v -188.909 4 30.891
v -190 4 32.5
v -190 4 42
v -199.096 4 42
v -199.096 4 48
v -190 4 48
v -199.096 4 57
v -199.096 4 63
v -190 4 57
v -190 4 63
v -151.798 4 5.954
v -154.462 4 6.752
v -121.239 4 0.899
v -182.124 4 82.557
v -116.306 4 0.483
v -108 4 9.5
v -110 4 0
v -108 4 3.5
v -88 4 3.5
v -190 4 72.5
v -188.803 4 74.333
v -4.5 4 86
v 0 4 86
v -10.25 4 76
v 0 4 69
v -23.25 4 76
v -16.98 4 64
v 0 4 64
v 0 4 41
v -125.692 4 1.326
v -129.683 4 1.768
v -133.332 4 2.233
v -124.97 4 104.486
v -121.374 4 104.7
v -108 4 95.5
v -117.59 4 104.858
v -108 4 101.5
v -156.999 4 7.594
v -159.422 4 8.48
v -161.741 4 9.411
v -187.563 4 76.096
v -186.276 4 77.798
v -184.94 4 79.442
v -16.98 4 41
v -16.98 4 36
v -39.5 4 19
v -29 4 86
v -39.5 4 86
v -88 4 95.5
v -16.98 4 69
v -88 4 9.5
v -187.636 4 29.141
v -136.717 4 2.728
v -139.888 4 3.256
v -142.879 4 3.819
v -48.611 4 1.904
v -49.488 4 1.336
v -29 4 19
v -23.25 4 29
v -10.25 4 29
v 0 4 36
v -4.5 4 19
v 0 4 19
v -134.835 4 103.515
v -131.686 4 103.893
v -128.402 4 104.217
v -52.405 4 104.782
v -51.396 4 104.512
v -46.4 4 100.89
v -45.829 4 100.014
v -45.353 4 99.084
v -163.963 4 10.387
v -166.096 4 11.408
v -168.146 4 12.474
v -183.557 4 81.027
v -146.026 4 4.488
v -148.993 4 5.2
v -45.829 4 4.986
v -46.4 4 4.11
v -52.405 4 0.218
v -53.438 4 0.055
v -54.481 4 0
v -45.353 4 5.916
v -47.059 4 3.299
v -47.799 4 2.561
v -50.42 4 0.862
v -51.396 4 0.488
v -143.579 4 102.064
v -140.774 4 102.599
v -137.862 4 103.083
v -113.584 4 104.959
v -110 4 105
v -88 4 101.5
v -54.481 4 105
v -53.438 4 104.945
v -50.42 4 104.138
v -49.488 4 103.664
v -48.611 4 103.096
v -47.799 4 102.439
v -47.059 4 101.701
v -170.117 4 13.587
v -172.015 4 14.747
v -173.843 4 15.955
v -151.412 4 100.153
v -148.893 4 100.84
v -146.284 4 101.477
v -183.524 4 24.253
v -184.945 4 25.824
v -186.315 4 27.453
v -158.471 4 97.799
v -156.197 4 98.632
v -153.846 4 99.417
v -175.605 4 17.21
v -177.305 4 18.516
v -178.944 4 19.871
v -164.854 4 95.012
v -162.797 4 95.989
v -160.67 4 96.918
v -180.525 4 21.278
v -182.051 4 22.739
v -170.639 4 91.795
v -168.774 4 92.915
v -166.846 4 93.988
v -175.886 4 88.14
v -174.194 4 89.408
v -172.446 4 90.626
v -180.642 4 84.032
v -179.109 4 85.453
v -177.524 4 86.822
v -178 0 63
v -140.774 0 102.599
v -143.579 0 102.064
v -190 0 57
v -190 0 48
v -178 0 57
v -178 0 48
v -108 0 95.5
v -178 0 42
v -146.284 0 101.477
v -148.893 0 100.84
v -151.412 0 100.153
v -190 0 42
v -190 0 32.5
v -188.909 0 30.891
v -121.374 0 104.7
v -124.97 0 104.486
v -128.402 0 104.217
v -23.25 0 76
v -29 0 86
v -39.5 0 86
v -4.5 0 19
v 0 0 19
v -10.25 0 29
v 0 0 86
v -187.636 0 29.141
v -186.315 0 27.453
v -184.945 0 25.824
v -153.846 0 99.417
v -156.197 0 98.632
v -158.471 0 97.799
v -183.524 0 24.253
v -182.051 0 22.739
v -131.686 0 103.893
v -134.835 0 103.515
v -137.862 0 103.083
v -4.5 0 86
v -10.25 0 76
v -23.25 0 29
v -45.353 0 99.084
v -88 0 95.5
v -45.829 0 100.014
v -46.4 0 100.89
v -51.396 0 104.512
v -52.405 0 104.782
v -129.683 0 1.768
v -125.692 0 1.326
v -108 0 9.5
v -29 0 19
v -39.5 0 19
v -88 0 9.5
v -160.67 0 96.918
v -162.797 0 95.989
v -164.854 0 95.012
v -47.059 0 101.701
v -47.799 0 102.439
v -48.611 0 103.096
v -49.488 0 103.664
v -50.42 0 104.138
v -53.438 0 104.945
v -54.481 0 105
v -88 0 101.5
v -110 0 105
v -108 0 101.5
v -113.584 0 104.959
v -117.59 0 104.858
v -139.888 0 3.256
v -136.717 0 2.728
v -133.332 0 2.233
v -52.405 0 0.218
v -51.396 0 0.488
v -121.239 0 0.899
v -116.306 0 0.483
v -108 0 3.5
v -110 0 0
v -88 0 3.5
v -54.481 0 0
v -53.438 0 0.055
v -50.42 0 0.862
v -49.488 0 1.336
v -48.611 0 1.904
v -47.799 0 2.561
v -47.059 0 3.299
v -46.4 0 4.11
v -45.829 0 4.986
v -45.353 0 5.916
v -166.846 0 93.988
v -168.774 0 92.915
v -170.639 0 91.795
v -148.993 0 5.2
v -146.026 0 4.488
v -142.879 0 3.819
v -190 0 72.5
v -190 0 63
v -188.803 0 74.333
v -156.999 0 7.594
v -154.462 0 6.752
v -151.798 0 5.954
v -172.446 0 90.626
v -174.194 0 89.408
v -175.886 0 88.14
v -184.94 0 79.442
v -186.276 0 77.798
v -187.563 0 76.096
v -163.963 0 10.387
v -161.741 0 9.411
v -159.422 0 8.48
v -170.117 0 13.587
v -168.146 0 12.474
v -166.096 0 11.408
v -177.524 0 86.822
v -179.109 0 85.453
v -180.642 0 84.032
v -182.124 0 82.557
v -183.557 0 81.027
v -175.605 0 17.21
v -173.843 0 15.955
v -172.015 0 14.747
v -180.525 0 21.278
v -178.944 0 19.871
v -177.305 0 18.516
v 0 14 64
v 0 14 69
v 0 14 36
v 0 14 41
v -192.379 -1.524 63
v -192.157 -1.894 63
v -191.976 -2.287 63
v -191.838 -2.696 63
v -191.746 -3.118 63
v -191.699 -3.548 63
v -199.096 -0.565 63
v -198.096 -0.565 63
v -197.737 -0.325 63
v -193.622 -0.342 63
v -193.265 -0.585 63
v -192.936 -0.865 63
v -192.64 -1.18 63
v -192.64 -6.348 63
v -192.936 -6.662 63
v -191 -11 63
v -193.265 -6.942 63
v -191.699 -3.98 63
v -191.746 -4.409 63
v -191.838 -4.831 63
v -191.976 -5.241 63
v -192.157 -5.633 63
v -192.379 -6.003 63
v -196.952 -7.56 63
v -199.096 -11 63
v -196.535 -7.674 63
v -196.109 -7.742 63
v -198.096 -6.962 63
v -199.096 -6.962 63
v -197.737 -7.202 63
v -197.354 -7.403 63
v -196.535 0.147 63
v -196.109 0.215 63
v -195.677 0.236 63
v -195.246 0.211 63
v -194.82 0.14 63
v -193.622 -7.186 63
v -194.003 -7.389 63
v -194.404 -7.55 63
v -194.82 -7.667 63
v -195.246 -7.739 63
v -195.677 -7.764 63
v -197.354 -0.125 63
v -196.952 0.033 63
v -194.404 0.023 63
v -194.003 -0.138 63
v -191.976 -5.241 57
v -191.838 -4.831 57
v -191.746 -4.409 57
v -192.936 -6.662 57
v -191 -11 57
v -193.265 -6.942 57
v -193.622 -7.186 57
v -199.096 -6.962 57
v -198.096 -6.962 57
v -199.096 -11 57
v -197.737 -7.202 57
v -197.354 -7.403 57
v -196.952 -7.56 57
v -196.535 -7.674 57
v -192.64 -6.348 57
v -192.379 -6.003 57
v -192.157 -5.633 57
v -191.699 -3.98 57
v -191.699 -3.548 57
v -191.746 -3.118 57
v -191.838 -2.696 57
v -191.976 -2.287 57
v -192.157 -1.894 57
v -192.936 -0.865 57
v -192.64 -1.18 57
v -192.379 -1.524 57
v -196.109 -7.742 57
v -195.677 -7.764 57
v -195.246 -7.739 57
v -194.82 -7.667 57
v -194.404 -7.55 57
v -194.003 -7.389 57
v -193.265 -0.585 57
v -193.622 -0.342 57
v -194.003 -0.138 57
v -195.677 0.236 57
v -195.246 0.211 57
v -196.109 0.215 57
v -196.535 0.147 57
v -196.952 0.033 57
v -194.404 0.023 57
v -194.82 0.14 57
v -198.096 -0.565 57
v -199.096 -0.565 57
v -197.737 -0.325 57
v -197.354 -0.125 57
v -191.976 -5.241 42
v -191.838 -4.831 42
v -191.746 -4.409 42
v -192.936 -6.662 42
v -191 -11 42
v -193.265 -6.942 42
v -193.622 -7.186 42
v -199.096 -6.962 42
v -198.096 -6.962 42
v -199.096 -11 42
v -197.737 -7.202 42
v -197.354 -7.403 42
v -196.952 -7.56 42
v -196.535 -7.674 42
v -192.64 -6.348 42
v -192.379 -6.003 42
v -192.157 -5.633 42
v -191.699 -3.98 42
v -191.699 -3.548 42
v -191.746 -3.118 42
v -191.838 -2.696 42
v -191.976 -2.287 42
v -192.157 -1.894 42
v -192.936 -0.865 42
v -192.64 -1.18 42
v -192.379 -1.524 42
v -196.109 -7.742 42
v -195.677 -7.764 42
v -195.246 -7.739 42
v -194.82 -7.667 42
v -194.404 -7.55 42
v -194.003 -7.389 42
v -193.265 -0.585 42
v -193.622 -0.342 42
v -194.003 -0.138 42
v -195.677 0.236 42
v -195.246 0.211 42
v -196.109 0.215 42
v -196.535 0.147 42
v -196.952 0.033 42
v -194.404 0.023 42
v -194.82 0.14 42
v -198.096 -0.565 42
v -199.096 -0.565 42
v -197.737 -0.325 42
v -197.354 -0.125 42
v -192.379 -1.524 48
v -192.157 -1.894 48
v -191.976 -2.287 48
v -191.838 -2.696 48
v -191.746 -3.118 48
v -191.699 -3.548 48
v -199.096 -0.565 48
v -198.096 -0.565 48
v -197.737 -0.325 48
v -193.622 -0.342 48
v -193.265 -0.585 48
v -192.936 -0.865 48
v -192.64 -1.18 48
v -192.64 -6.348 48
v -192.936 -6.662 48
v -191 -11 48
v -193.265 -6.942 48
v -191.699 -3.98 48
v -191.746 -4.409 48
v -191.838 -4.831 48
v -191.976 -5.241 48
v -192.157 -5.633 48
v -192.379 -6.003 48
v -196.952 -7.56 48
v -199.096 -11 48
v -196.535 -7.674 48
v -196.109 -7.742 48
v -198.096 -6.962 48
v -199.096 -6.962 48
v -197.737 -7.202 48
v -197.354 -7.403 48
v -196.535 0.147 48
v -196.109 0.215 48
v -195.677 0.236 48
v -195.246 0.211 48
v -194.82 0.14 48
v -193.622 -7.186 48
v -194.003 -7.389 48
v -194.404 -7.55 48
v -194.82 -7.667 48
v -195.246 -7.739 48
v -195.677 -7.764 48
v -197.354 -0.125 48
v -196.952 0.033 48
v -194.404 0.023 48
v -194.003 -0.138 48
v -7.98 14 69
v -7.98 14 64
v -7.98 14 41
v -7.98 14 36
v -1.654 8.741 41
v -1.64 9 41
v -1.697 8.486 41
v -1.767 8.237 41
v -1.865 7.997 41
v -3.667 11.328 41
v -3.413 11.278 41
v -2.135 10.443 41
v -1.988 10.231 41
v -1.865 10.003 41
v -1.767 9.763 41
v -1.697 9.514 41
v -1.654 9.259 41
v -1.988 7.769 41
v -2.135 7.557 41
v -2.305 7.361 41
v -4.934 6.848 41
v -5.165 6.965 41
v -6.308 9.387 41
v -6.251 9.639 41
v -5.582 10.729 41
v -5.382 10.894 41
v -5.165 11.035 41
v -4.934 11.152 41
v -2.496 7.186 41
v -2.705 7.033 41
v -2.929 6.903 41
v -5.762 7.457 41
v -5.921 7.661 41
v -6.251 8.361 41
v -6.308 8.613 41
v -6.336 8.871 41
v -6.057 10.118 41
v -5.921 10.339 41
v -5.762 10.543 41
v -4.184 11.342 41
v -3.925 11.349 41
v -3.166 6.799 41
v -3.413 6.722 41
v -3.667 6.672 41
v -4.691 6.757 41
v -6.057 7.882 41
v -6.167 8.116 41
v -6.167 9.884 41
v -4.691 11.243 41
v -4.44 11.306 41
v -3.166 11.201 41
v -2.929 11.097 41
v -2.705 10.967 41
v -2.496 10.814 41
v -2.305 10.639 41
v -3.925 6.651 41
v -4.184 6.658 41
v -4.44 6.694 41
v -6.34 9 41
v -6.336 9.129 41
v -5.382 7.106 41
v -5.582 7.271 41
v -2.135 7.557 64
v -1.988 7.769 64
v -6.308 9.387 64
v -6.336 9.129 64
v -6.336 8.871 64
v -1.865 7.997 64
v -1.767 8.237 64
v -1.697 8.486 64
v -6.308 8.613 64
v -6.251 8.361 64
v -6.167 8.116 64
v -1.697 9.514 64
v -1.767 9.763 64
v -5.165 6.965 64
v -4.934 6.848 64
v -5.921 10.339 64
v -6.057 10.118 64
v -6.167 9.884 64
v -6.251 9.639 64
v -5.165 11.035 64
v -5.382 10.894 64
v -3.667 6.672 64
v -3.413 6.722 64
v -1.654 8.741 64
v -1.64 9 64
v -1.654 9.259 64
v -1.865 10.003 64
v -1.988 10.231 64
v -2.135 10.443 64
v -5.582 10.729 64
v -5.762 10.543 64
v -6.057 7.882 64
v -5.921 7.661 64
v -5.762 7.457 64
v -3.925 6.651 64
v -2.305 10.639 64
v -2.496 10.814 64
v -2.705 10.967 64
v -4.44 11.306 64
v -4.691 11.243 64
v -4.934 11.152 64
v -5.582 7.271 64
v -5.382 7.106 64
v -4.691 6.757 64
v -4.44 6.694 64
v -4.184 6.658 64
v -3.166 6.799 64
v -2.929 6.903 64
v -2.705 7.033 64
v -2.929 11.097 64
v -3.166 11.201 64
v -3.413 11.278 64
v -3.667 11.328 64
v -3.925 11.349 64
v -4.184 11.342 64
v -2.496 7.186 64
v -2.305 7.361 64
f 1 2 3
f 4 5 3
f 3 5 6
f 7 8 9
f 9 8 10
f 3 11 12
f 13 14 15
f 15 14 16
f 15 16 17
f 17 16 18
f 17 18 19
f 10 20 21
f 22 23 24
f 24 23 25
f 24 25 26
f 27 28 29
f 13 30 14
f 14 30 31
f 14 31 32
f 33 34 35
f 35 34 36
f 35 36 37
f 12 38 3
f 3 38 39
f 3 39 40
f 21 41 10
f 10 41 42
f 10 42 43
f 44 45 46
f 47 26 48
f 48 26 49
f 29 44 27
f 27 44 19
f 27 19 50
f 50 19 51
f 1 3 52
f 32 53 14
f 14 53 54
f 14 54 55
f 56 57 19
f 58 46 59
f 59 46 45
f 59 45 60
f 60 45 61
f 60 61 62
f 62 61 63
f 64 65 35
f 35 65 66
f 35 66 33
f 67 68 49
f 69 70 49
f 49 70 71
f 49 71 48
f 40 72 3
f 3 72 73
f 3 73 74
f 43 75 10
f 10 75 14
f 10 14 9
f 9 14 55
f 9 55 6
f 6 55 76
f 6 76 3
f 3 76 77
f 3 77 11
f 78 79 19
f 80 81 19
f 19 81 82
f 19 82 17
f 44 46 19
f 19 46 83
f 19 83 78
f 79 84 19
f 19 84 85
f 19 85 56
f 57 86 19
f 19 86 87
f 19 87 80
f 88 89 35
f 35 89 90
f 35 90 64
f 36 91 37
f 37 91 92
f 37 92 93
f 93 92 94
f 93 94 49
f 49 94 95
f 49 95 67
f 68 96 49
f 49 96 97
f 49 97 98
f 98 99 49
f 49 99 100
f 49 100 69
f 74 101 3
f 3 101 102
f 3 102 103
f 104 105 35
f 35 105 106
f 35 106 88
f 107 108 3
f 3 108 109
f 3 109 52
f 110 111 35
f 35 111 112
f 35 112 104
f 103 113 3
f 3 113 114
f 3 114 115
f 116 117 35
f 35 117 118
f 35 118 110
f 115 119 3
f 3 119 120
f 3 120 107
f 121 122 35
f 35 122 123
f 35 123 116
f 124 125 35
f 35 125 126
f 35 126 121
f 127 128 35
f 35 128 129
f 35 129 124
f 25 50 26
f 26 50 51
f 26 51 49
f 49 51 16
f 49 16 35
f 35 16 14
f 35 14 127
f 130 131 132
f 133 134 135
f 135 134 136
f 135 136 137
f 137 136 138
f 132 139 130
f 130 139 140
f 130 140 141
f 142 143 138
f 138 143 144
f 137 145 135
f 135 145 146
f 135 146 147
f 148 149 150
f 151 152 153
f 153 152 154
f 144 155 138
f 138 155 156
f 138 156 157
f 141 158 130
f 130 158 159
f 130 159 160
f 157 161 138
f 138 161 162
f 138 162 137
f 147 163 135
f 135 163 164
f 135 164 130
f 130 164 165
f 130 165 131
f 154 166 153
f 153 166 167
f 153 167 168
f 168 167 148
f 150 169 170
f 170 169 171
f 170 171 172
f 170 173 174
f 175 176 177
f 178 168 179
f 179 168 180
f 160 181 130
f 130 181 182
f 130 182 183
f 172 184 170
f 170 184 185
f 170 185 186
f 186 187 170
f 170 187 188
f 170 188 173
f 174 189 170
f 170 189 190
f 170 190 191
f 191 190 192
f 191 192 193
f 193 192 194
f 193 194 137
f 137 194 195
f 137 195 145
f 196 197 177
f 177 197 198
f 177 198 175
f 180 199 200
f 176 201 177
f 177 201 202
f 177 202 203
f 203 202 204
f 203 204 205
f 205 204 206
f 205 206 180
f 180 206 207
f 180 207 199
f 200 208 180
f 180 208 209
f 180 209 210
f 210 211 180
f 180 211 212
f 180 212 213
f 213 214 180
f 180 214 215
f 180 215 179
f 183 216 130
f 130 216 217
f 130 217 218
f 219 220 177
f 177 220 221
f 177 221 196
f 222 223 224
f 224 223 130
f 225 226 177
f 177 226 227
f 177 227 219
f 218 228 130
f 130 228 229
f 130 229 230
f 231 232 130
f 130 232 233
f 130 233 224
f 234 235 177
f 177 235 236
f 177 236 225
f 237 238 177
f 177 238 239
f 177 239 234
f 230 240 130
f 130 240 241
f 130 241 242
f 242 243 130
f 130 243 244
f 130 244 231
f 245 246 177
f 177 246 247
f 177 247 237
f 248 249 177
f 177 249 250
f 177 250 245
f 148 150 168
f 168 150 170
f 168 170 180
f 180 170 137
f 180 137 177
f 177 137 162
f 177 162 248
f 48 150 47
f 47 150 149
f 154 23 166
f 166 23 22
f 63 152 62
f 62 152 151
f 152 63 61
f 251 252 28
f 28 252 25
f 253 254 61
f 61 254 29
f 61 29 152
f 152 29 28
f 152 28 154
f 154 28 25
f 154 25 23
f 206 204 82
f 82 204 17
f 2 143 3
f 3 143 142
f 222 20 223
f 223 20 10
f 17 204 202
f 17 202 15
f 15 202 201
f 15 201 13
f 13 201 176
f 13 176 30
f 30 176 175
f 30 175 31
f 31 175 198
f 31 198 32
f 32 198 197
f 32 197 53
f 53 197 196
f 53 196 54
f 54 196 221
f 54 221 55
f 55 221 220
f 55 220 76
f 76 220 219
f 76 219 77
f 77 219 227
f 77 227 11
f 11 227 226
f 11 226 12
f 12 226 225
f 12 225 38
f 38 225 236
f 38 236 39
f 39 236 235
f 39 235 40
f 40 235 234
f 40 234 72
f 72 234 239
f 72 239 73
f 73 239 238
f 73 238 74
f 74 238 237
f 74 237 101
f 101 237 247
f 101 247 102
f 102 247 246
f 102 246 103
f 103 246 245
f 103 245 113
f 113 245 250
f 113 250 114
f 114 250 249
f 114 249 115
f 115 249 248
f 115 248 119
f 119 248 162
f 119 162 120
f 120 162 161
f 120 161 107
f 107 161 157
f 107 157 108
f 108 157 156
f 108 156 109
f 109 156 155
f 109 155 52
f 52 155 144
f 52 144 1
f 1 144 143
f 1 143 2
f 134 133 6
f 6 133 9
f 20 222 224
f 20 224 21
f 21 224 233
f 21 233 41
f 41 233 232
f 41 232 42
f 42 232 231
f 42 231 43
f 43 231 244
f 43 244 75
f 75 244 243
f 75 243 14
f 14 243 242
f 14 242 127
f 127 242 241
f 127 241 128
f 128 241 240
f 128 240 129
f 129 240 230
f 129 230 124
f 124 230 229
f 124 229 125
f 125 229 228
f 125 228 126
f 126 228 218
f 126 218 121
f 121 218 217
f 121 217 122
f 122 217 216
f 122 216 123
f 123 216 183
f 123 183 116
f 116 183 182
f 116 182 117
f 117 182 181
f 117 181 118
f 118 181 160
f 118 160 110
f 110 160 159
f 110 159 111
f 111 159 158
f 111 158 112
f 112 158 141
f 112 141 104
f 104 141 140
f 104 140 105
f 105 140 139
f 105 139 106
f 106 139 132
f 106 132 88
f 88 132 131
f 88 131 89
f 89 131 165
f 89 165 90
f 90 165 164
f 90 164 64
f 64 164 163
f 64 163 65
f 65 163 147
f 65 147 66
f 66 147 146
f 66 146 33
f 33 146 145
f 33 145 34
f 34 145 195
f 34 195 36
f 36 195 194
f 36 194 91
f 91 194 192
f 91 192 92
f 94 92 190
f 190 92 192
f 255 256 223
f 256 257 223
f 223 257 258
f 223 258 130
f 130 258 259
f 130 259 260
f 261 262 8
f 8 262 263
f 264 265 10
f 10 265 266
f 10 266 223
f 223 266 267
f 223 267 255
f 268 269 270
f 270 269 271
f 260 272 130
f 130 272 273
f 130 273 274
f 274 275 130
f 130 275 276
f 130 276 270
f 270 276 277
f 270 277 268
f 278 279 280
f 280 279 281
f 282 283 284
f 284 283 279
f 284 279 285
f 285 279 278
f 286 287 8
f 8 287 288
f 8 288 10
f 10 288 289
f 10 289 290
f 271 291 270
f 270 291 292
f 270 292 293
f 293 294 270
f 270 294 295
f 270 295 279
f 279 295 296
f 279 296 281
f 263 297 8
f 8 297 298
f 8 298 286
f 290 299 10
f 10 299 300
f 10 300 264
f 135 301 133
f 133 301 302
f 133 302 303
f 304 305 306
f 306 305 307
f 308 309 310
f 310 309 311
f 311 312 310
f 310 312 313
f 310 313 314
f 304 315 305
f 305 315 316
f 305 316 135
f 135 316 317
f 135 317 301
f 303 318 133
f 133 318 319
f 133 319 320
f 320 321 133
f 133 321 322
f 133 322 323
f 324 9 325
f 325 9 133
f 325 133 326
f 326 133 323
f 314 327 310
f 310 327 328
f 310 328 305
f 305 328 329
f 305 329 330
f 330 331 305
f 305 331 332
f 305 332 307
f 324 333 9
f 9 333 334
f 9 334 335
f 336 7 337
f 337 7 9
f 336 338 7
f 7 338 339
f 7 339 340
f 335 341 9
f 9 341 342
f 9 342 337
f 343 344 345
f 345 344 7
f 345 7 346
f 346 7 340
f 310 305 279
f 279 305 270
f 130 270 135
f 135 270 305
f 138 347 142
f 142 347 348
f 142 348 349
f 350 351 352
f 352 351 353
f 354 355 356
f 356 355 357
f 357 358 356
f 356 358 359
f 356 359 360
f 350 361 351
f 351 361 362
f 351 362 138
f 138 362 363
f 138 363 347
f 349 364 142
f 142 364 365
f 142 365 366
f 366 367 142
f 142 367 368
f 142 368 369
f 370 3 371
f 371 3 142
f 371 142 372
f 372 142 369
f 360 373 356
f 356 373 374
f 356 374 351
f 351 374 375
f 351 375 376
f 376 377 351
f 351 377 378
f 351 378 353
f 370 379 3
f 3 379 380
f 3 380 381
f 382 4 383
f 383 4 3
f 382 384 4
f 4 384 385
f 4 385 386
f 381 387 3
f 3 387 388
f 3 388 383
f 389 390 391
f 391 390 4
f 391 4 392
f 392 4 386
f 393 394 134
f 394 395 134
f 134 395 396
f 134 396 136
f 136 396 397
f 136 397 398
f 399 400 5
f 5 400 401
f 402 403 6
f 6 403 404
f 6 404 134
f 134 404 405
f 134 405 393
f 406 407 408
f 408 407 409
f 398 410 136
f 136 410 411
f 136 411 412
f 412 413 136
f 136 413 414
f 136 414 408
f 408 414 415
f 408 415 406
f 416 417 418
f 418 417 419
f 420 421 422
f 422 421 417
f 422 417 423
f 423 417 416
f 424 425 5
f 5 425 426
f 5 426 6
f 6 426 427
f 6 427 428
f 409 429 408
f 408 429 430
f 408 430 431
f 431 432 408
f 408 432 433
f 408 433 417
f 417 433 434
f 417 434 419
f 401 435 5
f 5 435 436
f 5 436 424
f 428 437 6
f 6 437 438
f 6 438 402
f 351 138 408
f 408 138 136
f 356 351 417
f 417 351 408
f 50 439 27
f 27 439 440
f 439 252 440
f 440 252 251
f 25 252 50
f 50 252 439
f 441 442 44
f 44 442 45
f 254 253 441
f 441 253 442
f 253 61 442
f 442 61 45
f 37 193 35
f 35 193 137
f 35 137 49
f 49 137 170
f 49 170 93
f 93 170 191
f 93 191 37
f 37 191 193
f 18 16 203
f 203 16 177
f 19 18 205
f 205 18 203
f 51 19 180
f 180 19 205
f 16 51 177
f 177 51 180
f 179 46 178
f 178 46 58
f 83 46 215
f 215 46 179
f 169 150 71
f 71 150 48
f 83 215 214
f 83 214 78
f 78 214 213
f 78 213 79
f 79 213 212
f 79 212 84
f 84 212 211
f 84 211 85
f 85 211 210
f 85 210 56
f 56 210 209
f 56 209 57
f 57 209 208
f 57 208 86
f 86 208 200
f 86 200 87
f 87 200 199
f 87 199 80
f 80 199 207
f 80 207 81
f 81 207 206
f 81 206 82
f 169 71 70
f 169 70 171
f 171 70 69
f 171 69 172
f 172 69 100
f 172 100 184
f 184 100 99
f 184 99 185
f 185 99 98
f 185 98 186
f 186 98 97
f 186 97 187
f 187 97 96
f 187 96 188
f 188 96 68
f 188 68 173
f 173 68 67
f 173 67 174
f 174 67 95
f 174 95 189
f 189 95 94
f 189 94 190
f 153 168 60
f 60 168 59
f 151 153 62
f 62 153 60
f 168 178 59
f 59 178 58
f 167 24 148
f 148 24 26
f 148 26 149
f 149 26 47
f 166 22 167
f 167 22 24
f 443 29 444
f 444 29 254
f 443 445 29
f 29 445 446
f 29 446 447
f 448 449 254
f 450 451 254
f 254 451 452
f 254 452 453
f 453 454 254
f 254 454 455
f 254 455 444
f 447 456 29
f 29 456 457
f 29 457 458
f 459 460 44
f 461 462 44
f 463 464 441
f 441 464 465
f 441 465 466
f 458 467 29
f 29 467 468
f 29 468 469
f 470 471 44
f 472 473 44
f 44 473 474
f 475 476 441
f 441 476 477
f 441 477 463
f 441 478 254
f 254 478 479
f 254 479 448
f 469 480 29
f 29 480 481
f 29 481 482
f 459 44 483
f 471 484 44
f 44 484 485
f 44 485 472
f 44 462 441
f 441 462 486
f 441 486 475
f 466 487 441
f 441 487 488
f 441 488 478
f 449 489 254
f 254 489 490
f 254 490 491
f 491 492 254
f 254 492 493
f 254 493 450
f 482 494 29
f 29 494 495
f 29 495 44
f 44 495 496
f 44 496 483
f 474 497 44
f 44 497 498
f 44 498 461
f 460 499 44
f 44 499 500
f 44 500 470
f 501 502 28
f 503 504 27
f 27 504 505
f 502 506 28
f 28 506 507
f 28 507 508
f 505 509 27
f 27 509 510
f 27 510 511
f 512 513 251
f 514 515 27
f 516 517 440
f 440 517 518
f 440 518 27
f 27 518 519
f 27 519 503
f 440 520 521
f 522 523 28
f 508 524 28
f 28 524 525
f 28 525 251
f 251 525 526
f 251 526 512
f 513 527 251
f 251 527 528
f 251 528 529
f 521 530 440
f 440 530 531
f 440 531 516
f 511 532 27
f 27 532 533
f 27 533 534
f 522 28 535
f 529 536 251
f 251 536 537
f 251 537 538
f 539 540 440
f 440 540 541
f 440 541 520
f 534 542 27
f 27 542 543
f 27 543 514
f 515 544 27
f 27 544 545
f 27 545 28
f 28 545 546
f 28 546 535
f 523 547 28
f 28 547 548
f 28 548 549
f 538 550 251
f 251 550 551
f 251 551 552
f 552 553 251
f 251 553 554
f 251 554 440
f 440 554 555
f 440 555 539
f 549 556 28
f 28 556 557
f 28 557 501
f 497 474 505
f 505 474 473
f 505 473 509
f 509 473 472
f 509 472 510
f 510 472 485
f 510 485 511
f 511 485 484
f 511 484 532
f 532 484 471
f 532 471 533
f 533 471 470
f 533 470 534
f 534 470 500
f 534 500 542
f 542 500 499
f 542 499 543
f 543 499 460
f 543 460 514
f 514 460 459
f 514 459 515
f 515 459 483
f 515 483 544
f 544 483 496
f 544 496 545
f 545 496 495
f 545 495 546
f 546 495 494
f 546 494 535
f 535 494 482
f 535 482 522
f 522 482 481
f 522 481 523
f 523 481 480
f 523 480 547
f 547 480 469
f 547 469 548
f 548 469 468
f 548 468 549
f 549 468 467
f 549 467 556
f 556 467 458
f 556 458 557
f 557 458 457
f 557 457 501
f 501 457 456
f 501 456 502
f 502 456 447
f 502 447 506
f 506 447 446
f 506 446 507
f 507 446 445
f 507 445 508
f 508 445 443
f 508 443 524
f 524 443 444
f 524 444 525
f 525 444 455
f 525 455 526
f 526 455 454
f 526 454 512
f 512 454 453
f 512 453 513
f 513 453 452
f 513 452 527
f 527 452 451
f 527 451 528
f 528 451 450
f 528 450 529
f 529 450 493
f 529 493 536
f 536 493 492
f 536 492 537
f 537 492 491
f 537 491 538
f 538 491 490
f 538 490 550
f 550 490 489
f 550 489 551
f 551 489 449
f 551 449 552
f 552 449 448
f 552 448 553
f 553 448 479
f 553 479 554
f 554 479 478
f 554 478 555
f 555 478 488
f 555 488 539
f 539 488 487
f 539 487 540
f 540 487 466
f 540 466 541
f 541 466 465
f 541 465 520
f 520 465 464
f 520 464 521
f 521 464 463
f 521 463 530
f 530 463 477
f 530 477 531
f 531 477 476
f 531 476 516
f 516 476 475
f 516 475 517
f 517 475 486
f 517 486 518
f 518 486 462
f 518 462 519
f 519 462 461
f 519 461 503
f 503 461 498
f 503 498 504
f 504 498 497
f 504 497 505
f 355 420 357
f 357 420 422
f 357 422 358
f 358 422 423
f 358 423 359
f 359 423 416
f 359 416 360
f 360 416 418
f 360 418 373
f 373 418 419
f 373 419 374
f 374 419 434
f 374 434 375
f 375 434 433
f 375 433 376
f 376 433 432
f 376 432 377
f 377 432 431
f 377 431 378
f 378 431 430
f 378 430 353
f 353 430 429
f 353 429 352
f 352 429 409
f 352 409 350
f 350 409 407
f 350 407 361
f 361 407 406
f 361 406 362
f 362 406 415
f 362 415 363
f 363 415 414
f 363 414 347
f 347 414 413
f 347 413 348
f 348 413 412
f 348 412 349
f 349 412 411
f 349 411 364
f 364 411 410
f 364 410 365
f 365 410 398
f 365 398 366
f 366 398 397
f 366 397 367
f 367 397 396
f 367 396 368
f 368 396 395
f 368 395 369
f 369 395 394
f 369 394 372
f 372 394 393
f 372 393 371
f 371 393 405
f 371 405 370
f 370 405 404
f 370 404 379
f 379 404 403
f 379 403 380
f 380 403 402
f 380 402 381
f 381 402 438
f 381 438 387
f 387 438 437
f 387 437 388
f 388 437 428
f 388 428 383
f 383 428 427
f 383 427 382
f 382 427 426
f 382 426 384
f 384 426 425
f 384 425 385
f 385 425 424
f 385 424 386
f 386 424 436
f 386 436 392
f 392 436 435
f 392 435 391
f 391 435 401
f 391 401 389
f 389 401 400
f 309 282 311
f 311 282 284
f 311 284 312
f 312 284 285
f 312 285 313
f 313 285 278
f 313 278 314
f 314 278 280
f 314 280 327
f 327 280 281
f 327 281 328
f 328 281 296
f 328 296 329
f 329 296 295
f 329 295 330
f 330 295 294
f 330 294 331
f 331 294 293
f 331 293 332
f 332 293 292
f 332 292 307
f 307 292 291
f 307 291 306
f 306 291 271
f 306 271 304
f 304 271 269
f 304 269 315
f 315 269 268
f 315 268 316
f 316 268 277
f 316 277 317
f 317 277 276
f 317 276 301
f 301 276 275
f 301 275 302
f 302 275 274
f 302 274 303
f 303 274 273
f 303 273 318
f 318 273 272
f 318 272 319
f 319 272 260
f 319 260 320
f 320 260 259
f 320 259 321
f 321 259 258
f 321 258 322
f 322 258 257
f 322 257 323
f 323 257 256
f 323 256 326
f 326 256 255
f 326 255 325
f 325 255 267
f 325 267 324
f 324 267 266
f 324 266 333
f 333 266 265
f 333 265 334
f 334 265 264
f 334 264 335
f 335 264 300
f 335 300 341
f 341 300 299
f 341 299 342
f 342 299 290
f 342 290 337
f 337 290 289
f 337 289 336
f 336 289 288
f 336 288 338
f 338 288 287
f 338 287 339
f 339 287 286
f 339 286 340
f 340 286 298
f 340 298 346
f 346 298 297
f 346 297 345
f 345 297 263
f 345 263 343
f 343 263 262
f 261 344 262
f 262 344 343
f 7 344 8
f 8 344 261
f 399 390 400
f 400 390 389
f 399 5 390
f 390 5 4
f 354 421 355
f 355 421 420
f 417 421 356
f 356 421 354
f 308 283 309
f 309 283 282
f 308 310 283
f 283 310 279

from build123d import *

# Parameters (mm, degrees)
BOSS_EXTRUDE1_DEPTH     = 4
BOSS_EXTRUDE2_START     = -45
BOSS_EXTRUDE2_DEPTH     = 3
BOSS_EXTRUDE3_START     = -39
BOSS_EXTRUDE3_DEPTH     = 3
BOSS_EXTRUDE4_REACH     = 213.107
SKETCH6_R               = 2.5
SKETCH7_W               = 20
SKETCH7_H               = 6
CUT_EXTRUDE1_DEPTH      = 10
CUT_EXTRUDE2_DEPTH      = 228.268563733
FILLET1_R               = 10
CUT_EXTRUDE3_DEPTH      = 228.268563733
SKETCH12_W              = 23
SKETCH12_H              = 10
CUT_EXTRUDE6_DEPTH      = 21
BOSS_EXTRUDE5_REACH     = 213.407
SKETCH13_R              = 2.35
CUT_EXTRUDE7_DEPTH      = 209.214432859
CUT_EXTRUDE7_DEPTH_BACK = 209.214432859
SKETCH15_W              = 6
SKETCH15_H              = 4.56544039
SKETCH15_H_2            = 4.038157292
BOSS_EXTRUDE6_DEPTH     = 1


with BuildPart() as part:
    # Sketch1 → Boss-Extrude1 (new body)
    with BuildSketch(Plane(origin=(0, 0, 0), x_dir=(1, 0, 0), z_dir=(0, 1, 0))):
        with BuildLine():
            Line((-110, 0), (0, 0))
            Line((0, 0), (0, -105))
            Line((0, -105), (-110, -105))
            add(Edge.make_bspline(
                [(-190, -72.5), (-172.262756658, -100.700379519), (-139.265999107, -104.836107107), (-110, -105)],
                knots=[0, 0, 0, 0, 1, 1, 1, 1], degree=3))
            Line((-190, -72.5), (-190, -32.5))
            add(Edge.make_bspline(
                [(-190, -32.5), (-171.707374586, -4.618888995), (-138.989901699, -2.178666842), (-110, 0)],
                knots=[0, 0, 0, 0, 1, 1, 1, 1], degree=3))
        make_face()
    extrude(amount=BOSS_EXTRUDE1_DEPTH)

    # Sketch2 → Boss-Extrude2 (add, symmetric)
    with BuildSketch(Plane.XY.offset(105).offset(BOSS_EXTRUDE2_START)):
        Polygon((-190, 4), (-201, 4), (-201, -11), (-191, -11), (-178, 0), align=None)
    boss_extrude2 = extrude(amount=BOSS_EXTRUDE2_DEPTH, both=True)

    # Mirror1: Boss-Extrude2 across plane
    add(boss_extrude2.mirror(Plane.XY.offset(52.5)))

    # Sketch5 → Boss-Extrude3 (add, symmetric)
    with BuildSketch(Plane.XY.offset(105).offset(BOSS_EXTRUDE3_START)):
        Polygon((-16.979807258, 4), (-7.979807258, 14), (0, 14), (0, 4), align=None)
    boss_extrude3 = extrude(amount=BOSS_EXTRUDE3_DEPTH, both=True)

    # Mirror4: Boss-Extrude3 across plane
    add(boss_extrude3.mirror(Plane.XY.offset(52.5)))

    # Sketch6 → Boss-Extrude4 (add, up to next)
    with BuildSketch(Plane.XY.offset(42), mode=Mode.PRIVATE) as boss_extrude4_sk1:
        with Locations(Location((-4, 10, 0), (0, 0, 180))):
            Circle(SKETCH6_R)
    boss_extrude4_tool1 = extrude(boss_extrude4_sk1.sketch, amount=BOSS_EXTRUDE4_REACH, mode=Mode.PRIVATE) - part.part
    add(boss_extrude4_tool1.solids().sort_by_distance((-4, 10, 42))[0])

    # Sketch7 → Cut-Extrude1 (cut)
    with BuildSketch(Plane(origin=(0, 4, 0), x_dir=(1, 0, 0), z_dir=(0, 1, 0))):
        with Locations((-98, -98.5)):
            Rectangle(SKETCH7_W, SKETCH7_H)
    cut_extrude1 = extrude(amount=-CUT_EXTRUDE1_DEPTH, mode=Mode.SUBTRACT)

    # Mirror5: Cut-Extrude1 across plane
    add(cut_extrude1.mirror(Plane.XY.offset(52.5)), mode=Mode.SUBTRACT)

    # Sketch10 → Cut-Extrude2 (cut, symmetric)
    with BuildSketch(Plane(origin=(0, 4, 0), x_dir=(1, 0, 0), z_dir=(0, 1, 0))):
        Polygon((0, -19), (-39.5, -19), (-48, 0), (0, 0), align=None)
    cut_extrude2 = extrude(amount=CUT_EXTRUDE2_DEPTH, both=True, mode=Mode.SUBTRACT)

    # Mirror6: Cut-Extrude2 across plane
    add(cut_extrude2.mirror(Plane.XY.offset(52.5)), mode=Mode.SUBTRACT)

    # Fillet1
    fillet1_edges = [part.edges().sort_by_distance(p)[0] for p in [
        (-48, 2, 0),
        (-48, 2, 105),
    ]]
    fillet(fillet1_edges, radius=FILLET1_R)

    # Sketch11 → Cut-Extrude3 (cut, symmetric)
    with BuildSketch(Plane(origin=(0, 4, 0), x_dir=(1, 0, 0), z_dir=(0, 1, 0))):
        Polygon((-4.5, -19), (-10.25, -29), (-23.25, -29), (-29, -19), align=None)
    cut_extrude3 = extrude(amount=CUT_EXTRUDE3_DEPTH, both=True, mode=Mode.SUBTRACT)

    # Mirror7: Cut-Extrude3 across plane
    add(cut_extrude3.mirror(Plane.XY.offset(52.5)), mode=Mode.SUBTRACT)

    # Sketch12 → Cut-Extrude6 (cut)
    with BuildSketch(Plane(origin=(0, 0, 0), x_dir=(0, 0, -1), z_dir=(1, 0, 0))):
        with Locations((-52.5, 9)):
            Rectangle(SKETCH12_W, SKETCH12_H)
    extrude(amount=-CUT_EXTRUDE6_DEPTH, mode=Mode.SUBTRACT)

    # Sketch13 → Boss-Extrude5 (add, up to next)
    with BuildSketch(Plane(origin=(0, 0, 64), x_dir=(-1, 0, 0), z_dir=(0, 0, -1)), mode=Mode.PRIVATE) as boss_extrude5_sk1:
        with Locations(Location((3.989903629, 9, 0), (0, 0, 180))):
            Circle(SKETCH13_R)
    boss_extrude5_tool1 = extrude(boss_extrude5_sk1.sketch, amount=BOSS_EXTRUDE5_REACH, mode=Mode.PRIVATE) - part.part
    add(boss_extrude5_tool1.solids().sort_by_distance((-3.989904, 9, 64))[0])

    # Sketch14 → Cut-Extrude7 (cut, two sides: drawn at the far end of the back side and taken through both)
    with BuildSketch(Plane.XY.offset(52.5).offset(-CUT_EXTRUDE7_DEPTH_BACK)):
        with BuildLine():
            Line((-198.09573372, 4), (-198.09573372, -0.56544039))
            ThreePointArc((-198.09573372, -0.56544039), (-191.693337136, -3.763641549), (-198.09573372, -6.961842708))
            Line((-198.09573372, -6.961842708), (-198.09573372, -11))
            Line((-198.09573372, -11), (-202.719197906, -12.115187625))
            Line((-202.719197906, -12.115187625), (-202.588499271, 4.842960165))
            Line((-202.588499271, 4.842960165), (-198.09573372, 4))
        make_face()
    extrude(amount=CUT_EXTRUDE7_DEPTH + CUT_EXTRUDE7_DEPTH_BACK, mode=Mode.SUBTRACT)

    # Sketch15 → Boss-Extrude6 (add)
    with BuildSketch(Plane.ZY.offset(198.09573372)):
        with Locations((60, 1.717279805)):
            Rectangle(SKETCH15_W, SKETCH15_H)
        with Locations((45, 1.717279805)):
            Rectangle(SKETCH15_W, SKETCH15_H)
        with Locations((45, -8.980921354)):
            Rectangle(SKETCH15_W, SKETCH15_H_2)
        with Locations((60, -8.980921354)):
            Rectangle(SKETCH15_W, SKETCH15_H_2)
    extrude(amount=BOSS_EXTRUDE6_DEPTH)


solid = part.part
